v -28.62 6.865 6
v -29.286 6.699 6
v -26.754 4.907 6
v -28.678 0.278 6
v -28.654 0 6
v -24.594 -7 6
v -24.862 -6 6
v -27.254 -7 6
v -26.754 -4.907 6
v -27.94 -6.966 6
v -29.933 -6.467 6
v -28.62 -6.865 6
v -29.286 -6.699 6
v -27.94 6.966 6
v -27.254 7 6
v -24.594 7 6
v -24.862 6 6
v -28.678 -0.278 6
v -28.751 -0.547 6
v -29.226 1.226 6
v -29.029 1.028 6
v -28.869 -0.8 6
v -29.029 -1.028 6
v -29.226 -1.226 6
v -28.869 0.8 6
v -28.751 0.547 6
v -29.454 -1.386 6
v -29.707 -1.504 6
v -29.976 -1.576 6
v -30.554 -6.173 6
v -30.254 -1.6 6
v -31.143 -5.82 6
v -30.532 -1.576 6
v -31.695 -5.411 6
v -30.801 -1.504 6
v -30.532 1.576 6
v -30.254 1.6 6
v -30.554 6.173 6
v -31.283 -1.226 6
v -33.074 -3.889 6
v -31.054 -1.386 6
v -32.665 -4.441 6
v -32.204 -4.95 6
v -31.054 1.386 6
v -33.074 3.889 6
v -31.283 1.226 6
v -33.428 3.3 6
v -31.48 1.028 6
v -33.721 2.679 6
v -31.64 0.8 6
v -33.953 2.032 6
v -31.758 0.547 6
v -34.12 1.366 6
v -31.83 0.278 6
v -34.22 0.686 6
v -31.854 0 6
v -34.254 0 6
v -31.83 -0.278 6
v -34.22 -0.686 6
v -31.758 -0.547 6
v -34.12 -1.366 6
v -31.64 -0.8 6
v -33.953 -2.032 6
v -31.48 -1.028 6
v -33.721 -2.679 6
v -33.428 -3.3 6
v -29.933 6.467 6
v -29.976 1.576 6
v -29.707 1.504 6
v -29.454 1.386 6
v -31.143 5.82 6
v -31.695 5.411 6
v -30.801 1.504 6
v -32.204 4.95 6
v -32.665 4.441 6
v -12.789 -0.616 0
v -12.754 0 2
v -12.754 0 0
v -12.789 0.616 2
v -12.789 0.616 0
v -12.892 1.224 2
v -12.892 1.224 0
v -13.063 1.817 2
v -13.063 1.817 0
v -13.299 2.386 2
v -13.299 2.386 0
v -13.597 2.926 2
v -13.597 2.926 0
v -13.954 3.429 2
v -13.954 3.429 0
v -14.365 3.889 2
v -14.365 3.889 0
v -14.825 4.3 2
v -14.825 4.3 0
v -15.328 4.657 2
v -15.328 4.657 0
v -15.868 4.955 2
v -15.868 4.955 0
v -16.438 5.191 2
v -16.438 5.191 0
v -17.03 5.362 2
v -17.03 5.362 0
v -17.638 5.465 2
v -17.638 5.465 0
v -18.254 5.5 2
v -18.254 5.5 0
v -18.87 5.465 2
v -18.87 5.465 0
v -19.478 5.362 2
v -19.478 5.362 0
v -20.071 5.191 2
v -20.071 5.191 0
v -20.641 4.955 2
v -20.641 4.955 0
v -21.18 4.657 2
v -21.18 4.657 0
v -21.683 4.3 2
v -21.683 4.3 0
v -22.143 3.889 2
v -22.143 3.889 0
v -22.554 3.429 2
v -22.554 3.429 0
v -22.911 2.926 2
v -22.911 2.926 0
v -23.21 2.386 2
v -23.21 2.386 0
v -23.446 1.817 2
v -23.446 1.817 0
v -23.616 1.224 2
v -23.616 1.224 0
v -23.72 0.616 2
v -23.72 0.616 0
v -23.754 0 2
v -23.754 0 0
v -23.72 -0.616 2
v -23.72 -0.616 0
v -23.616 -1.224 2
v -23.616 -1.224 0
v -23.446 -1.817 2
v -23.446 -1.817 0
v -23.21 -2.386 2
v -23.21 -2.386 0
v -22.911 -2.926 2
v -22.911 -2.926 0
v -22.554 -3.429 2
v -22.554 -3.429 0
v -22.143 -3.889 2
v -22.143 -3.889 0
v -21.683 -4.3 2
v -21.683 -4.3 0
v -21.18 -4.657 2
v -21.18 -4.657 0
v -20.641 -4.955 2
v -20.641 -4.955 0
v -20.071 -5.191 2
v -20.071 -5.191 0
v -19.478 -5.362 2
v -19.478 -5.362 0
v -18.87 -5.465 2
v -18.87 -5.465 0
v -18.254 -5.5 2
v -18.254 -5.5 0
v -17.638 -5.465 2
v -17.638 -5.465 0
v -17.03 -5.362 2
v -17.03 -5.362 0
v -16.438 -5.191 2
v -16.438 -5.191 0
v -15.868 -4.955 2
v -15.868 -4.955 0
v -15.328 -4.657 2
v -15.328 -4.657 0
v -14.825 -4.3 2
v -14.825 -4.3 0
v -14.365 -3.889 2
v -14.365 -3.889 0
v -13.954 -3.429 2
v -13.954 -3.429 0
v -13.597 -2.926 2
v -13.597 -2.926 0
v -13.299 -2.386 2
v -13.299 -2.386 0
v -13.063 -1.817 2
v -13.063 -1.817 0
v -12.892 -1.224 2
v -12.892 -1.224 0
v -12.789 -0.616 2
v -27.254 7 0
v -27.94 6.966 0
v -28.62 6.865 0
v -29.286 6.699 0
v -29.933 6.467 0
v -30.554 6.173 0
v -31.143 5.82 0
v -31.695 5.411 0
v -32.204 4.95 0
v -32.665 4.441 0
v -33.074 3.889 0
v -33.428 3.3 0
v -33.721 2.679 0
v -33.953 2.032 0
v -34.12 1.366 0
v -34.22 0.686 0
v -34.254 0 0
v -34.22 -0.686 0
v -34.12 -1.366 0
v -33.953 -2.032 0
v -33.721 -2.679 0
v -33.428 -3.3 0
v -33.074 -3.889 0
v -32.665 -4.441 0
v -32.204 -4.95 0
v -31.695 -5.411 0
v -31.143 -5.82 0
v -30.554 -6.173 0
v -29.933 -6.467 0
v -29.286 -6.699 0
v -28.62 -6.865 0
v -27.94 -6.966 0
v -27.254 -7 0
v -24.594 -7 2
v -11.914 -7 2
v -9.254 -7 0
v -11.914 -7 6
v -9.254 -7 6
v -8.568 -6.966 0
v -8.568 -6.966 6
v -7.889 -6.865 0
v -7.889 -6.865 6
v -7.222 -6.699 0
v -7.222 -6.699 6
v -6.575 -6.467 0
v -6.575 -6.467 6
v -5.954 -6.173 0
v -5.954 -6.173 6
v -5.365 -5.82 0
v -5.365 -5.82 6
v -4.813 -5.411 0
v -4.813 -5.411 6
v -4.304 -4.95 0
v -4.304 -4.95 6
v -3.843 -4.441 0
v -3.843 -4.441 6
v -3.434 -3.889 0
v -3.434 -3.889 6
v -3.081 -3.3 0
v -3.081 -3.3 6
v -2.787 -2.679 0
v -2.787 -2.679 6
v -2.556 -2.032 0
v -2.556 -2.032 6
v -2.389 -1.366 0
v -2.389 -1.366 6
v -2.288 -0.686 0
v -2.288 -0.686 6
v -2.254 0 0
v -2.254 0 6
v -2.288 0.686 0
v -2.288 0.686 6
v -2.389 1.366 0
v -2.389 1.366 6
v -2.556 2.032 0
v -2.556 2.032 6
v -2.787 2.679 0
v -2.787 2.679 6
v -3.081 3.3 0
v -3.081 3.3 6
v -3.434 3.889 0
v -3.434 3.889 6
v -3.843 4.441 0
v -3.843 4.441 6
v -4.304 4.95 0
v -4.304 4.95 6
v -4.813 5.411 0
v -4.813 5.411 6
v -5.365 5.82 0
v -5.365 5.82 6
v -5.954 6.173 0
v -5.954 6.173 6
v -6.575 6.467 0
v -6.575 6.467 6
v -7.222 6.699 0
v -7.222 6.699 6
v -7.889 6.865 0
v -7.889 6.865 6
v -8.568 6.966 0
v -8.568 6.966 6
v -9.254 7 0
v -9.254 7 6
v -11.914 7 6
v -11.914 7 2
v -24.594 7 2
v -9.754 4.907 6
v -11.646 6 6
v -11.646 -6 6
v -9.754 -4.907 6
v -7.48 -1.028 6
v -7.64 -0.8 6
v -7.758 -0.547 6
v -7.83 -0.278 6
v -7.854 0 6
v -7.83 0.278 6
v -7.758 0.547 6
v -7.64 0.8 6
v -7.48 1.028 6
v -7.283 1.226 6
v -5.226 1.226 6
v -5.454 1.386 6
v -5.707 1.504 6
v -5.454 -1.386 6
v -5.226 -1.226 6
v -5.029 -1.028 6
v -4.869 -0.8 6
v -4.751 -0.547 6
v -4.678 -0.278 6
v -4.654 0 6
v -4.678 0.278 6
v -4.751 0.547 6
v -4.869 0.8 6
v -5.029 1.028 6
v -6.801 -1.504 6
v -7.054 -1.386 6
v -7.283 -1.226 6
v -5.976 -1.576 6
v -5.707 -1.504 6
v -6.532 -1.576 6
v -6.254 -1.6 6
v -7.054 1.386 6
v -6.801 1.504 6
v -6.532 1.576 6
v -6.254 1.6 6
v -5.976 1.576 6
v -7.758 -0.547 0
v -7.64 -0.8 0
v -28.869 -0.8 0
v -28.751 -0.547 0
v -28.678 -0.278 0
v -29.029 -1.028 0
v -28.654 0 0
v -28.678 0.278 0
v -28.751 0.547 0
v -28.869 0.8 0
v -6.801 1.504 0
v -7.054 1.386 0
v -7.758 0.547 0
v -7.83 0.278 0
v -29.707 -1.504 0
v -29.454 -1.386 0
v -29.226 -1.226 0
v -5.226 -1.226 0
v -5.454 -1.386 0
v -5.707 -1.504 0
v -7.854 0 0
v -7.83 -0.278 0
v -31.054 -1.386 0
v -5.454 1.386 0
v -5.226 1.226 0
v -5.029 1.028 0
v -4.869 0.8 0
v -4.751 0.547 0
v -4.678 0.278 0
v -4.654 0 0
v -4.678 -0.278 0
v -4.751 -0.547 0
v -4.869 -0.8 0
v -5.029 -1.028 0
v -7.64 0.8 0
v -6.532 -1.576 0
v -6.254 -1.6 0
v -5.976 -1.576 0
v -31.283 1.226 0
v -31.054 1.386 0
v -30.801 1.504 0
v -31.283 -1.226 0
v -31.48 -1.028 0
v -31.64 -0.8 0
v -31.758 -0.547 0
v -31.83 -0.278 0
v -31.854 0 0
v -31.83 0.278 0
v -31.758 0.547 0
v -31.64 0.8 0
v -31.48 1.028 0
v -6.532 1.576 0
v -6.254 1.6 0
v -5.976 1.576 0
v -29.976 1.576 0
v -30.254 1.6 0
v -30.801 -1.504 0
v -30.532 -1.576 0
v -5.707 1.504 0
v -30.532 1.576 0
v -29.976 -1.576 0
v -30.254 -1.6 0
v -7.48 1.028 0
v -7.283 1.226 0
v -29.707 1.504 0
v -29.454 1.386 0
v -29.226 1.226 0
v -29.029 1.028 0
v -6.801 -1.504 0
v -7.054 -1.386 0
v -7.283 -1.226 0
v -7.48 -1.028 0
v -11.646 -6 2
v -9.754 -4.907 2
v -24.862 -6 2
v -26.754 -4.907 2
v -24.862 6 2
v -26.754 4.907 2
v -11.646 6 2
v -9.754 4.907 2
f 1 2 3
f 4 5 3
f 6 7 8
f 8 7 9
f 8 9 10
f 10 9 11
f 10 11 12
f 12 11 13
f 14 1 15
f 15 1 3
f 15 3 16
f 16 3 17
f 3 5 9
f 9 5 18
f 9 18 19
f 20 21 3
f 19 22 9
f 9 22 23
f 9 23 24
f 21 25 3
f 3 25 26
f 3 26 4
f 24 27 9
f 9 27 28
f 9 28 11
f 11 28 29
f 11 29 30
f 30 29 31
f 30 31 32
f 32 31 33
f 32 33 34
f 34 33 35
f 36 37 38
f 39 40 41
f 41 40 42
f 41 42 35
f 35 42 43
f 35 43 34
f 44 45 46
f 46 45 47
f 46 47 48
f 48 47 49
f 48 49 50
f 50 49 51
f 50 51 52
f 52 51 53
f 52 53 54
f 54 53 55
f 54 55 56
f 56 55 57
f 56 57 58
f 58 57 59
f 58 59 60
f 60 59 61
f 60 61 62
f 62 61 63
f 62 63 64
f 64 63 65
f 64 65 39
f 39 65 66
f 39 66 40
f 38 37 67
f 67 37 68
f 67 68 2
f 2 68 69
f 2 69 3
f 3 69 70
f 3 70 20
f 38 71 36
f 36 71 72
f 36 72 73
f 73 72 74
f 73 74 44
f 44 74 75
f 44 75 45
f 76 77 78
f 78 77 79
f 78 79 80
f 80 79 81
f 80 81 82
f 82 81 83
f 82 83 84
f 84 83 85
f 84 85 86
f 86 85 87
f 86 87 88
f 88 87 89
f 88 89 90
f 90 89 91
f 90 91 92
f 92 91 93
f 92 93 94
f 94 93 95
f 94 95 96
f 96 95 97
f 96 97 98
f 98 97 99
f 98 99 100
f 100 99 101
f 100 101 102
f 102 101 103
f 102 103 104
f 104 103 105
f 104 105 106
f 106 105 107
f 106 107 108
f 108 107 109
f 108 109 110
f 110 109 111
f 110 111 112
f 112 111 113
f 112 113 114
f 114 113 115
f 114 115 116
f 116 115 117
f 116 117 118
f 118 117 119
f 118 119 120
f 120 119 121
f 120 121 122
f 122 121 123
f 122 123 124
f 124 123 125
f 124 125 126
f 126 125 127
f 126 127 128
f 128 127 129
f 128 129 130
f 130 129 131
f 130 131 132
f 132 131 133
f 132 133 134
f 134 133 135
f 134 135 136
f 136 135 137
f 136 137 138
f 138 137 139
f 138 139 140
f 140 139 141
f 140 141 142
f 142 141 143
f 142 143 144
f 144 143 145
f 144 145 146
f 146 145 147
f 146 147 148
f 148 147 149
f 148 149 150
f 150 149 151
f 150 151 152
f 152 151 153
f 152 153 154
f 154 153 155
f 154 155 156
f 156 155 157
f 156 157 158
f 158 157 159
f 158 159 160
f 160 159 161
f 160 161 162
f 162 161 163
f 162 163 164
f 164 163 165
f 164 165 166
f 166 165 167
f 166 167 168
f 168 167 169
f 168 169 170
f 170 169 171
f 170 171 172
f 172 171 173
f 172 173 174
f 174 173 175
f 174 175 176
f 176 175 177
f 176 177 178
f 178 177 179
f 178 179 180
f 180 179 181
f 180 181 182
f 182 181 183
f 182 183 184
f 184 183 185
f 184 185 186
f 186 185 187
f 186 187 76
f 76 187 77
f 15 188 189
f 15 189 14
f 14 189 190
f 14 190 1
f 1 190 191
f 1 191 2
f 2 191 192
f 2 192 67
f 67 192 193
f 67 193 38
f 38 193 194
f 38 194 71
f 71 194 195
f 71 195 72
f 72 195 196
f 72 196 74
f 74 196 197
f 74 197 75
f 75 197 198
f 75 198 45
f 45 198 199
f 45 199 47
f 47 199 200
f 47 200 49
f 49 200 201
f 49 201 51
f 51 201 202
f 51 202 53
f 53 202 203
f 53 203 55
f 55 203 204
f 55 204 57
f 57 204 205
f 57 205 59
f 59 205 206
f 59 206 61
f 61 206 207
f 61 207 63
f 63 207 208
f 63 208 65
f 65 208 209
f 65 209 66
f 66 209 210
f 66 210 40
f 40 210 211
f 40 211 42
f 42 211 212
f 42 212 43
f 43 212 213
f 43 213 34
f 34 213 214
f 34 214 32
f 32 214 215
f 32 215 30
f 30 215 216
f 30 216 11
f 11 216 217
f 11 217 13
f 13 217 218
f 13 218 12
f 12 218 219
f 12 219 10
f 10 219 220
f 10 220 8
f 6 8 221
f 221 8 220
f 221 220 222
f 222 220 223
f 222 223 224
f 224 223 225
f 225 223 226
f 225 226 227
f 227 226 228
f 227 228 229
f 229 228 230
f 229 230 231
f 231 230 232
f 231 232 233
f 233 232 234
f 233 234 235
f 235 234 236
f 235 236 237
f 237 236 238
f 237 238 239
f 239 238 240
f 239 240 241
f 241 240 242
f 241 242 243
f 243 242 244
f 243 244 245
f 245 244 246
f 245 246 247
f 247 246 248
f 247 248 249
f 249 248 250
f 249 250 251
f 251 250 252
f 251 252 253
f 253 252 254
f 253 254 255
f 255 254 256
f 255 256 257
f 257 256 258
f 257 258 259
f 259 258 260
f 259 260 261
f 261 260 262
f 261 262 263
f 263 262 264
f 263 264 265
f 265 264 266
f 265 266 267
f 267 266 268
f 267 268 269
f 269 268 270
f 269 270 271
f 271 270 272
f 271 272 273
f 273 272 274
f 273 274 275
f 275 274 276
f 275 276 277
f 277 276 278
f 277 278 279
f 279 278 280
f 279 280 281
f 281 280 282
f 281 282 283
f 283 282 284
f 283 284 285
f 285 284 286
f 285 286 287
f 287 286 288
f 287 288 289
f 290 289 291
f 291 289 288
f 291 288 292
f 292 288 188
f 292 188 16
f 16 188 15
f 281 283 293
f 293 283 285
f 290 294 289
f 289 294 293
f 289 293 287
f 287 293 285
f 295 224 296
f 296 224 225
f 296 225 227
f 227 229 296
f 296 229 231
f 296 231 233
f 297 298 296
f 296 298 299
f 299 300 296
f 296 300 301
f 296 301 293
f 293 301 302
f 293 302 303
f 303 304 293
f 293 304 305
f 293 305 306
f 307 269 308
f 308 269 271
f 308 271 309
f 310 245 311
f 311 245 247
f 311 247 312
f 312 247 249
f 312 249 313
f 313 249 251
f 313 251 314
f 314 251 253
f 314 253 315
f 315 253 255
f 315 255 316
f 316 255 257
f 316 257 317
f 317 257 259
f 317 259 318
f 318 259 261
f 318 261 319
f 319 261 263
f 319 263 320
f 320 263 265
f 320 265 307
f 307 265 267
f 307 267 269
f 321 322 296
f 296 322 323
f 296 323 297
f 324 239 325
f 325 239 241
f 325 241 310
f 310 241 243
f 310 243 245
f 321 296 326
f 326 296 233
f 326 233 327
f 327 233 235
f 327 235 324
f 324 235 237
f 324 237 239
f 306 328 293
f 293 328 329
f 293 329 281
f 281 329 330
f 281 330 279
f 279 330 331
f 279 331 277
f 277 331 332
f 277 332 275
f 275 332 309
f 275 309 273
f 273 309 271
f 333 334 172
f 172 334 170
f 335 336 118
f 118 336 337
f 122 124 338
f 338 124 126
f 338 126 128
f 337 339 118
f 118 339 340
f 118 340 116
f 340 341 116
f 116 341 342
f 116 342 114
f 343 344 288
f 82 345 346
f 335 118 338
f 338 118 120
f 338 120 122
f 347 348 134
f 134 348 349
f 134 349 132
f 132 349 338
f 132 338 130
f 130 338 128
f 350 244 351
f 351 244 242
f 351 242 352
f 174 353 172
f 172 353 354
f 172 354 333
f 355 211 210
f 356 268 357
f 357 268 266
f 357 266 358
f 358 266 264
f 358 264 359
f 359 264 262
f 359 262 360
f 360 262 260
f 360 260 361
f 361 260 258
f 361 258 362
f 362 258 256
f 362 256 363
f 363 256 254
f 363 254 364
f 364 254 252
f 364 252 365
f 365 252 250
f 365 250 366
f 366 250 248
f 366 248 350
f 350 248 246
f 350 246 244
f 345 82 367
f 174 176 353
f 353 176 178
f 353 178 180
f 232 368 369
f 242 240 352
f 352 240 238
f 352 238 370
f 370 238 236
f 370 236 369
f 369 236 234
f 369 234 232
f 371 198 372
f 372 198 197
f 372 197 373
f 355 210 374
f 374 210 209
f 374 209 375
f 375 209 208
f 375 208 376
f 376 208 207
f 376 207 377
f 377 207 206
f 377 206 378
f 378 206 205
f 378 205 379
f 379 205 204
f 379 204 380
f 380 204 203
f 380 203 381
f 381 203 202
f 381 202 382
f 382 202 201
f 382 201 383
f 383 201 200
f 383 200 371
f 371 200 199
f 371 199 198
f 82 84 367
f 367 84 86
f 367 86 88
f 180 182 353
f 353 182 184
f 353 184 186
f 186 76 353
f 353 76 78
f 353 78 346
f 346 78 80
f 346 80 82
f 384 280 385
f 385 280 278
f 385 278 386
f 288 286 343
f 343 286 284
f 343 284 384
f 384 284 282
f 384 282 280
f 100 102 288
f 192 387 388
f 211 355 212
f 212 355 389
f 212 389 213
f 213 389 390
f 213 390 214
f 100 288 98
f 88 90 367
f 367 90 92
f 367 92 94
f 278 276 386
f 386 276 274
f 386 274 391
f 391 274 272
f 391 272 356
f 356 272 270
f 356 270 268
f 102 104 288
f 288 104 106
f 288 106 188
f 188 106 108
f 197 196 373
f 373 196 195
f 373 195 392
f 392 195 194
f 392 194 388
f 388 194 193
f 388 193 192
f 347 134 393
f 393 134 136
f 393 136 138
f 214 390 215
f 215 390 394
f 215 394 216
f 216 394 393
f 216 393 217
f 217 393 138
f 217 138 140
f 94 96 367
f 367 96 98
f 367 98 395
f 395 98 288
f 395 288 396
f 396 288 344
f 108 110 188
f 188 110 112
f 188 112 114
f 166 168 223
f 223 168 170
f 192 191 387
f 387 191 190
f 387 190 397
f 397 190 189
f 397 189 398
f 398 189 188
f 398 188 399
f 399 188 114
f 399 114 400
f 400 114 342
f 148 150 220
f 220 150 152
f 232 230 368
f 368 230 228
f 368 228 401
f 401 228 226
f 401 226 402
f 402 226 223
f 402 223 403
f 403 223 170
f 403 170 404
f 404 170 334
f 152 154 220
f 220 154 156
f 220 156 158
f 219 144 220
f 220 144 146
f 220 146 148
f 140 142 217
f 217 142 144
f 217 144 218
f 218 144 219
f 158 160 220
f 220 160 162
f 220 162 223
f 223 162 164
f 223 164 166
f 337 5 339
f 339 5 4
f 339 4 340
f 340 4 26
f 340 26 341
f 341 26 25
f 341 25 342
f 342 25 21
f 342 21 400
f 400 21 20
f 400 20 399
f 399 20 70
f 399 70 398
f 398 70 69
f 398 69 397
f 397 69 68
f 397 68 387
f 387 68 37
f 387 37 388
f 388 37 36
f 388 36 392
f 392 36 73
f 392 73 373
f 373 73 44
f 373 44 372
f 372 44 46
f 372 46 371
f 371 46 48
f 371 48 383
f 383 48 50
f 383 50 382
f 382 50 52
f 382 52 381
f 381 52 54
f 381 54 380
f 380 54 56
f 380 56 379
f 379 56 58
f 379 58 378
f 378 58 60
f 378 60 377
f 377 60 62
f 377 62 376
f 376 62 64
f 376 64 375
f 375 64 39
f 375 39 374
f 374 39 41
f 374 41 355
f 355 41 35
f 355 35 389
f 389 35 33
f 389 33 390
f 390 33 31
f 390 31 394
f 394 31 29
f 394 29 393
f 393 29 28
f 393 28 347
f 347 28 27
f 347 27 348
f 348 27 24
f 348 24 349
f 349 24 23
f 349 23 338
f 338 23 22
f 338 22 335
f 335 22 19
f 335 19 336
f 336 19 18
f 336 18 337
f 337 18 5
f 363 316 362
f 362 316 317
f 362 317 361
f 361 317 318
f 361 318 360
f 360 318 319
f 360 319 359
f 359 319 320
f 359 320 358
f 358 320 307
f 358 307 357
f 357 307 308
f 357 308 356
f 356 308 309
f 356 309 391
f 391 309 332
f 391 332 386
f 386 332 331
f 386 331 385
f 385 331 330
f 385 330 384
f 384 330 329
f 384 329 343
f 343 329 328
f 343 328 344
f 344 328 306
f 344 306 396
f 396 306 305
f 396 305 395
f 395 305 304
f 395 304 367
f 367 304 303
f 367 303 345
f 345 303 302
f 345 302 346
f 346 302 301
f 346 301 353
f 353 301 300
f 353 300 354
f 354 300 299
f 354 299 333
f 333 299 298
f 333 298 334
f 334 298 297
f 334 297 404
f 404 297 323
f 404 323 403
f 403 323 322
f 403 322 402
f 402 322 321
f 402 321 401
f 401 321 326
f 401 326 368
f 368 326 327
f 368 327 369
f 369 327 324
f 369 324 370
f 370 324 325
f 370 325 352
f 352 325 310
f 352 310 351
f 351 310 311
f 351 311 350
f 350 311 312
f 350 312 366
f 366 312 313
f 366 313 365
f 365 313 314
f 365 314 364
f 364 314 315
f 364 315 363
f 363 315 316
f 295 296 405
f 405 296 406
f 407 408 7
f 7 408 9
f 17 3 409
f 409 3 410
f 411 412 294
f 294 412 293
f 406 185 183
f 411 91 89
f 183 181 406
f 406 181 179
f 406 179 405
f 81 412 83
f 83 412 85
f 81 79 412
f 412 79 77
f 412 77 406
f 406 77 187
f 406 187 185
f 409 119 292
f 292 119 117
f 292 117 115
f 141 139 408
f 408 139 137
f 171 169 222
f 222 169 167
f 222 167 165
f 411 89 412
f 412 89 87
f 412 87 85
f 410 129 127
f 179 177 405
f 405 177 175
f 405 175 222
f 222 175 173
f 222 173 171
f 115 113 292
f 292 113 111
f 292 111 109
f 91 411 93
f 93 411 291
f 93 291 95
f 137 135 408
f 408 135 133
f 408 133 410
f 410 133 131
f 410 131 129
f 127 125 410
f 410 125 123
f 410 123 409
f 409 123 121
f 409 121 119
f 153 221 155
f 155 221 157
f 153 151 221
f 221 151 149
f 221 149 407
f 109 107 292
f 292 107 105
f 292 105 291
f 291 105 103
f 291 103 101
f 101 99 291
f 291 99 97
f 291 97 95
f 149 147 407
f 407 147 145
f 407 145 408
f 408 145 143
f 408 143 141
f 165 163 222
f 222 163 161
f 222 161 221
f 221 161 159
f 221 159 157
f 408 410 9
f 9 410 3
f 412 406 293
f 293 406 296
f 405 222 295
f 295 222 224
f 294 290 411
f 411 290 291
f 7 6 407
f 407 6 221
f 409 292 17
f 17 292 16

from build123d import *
from OCP.BRepFilletAPI import BRepFilletAPI_MakeChamfer

# Parameters (mm, degrees)
BOSS_EXTRU_1_DEPTH      = 6
ESQUISSE3_R             = 5.5
ESQUISSE3_R_2           = 1.6
ENL_V_MAT_EXTRU_1_DEPTH = 36.47321166
ENL_V_MAT_EXTRU_2_DEPTH = 4
CHAMFER1_SIZE           = 2
CHAMFER1_SIZE2          = 1.464101615


with BuildPart() as part:
    # Esquisse1 → Boss.-Extru.1 (new body)
    with BuildSketch(Plane.XY):
        with BuildLine():
            Line((-27.254178511, 7), (-9.254178511, 7))
            ThreePointArc((-9.254178511, 7), (-2.254178511, 0), (-9.254178511, -7))
            Line((-9.254178511, -7), (-27.254178511, -7))
            ThreePointArc((-27.254178511, -7), (-34.254178511, 0), (-27.254178511, 7))
        make_face()
    extrude(amount=BOSS_EXTRU_1_DEPTH)

    # Esquisse3 → Enlèv. mat.-Extru.1 (cut, through all)
    with BuildSketch(Plane.XY.offset(6)):
        with Locations((-18.254178511, 0)):
            Circle(ESQUISSE3_R)
        with Locations((-30.254178511, 0)):
            Circle(ESQUISSE3_R_2)
        with Locations((-6.254178511, 0)):
            Circle(ESQUISSE3_R_2)
    extrude(amount=-ENL_V_MAT_EXTRU_1_DEPTH, mode=Mode.SUBTRACT)

    # Esquisse4 → Enlèv. mat.-Extru.2 (cut)
    with BuildSketch(Plane.XY.offset(6)):
        Polygon((-9.754178511, -4.907477288), (-9.754178511, 4.907477288), (-18.254178511, 9.814954576), (-26.754178511, 4.907477288), (-26.754178511, -4.907477288), (-18.254178511, -9.814954576), align=None)
    extrude(amount=-ENL_V_MAT_EXTRU_2_DEPTH, mode=Mode.SUBTRACT)

    # Chamfer1: one chamfer whose edges measure the first distance from different faces: ONE call of the kernel's chamfer builder (chamfer() names one face for all edges)
    chamfer1_edges_1 = [part.edges().sort_by_distance(p)[0] for p in [
        (-13.378534164, -7, 4),
    ]]
    chamfer1_side_1 = [part.faces().sort_by_distance(p)[0] for p in [
        (-11.566356337, -5.953738644, 4),
    ]]
    chamfer1_edges_2 = [part.edges().sort_by_distance(p)[0] for p in [
        (-23.129822858, -7, 4),
    ]]
    chamfer1_side_2 = [part.faces().sort_by_distance(p)[0] for p in [
        (-24.942000685, -5.953738644, 4),
    ]]
    chamfer1_edges_3 = [part.edges().sort_by_distance(p)[0] for p in [
        (-23.129822858, 7, 4),
    ]]
    chamfer1_side_3 = [part.faces().sort_by_distance(p)[0] for p in [
        (-24.942000685, 5.953738644, 4),
    ]]
    chamfer1_edges_4 = [part.edges().sort_by_distance(p)[0] for p in [
        (-13.378534164, 7, 4),
    ]]
    chamfer1_side_4 = [part.faces().sort_by_distance(p)[0] for p in [
        (-11.566356337, 5.953738644, 4),
    ]]
    chamfer1 = BRepFilletAPI_MakeChamfer(part.part.solid().wrapped)
    for e in chamfer1_edges_1:
        chamfer1.Add(CHAMFER1_SIZE, CHAMFER1_SIZE2, e.wrapped, chamfer1_side_1[0].wrapped)  # the first distance lies on this face
    for e in chamfer1_edges_2:
        chamfer1.Add(CHAMFER1_SIZE, CHAMFER1_SIZE2, e.wrapped, chamfer1_side_2[0].wrapped)  # the first distance lies on this face
    for e in chamfer1_edges_3:
        chamfer1.Add(CHAMFER1_SIZE, CHAMFER1_SIZE2, e.wrapped, chamfer1_side_3[0].wrapped)  # the first distance lies on this face
    for e in chamfer1_edges_4:
        chamfer1.Add(CHAMFER1_SIZE, CHAMFER1_SIZE2, e.wrapped, chamfer1_side_4[0].wrapped)  # the first distance lies on this face
    add(Compound.cast(chamfer1.Shape()), mode=Mode.REPLACE)


solid = part.part
